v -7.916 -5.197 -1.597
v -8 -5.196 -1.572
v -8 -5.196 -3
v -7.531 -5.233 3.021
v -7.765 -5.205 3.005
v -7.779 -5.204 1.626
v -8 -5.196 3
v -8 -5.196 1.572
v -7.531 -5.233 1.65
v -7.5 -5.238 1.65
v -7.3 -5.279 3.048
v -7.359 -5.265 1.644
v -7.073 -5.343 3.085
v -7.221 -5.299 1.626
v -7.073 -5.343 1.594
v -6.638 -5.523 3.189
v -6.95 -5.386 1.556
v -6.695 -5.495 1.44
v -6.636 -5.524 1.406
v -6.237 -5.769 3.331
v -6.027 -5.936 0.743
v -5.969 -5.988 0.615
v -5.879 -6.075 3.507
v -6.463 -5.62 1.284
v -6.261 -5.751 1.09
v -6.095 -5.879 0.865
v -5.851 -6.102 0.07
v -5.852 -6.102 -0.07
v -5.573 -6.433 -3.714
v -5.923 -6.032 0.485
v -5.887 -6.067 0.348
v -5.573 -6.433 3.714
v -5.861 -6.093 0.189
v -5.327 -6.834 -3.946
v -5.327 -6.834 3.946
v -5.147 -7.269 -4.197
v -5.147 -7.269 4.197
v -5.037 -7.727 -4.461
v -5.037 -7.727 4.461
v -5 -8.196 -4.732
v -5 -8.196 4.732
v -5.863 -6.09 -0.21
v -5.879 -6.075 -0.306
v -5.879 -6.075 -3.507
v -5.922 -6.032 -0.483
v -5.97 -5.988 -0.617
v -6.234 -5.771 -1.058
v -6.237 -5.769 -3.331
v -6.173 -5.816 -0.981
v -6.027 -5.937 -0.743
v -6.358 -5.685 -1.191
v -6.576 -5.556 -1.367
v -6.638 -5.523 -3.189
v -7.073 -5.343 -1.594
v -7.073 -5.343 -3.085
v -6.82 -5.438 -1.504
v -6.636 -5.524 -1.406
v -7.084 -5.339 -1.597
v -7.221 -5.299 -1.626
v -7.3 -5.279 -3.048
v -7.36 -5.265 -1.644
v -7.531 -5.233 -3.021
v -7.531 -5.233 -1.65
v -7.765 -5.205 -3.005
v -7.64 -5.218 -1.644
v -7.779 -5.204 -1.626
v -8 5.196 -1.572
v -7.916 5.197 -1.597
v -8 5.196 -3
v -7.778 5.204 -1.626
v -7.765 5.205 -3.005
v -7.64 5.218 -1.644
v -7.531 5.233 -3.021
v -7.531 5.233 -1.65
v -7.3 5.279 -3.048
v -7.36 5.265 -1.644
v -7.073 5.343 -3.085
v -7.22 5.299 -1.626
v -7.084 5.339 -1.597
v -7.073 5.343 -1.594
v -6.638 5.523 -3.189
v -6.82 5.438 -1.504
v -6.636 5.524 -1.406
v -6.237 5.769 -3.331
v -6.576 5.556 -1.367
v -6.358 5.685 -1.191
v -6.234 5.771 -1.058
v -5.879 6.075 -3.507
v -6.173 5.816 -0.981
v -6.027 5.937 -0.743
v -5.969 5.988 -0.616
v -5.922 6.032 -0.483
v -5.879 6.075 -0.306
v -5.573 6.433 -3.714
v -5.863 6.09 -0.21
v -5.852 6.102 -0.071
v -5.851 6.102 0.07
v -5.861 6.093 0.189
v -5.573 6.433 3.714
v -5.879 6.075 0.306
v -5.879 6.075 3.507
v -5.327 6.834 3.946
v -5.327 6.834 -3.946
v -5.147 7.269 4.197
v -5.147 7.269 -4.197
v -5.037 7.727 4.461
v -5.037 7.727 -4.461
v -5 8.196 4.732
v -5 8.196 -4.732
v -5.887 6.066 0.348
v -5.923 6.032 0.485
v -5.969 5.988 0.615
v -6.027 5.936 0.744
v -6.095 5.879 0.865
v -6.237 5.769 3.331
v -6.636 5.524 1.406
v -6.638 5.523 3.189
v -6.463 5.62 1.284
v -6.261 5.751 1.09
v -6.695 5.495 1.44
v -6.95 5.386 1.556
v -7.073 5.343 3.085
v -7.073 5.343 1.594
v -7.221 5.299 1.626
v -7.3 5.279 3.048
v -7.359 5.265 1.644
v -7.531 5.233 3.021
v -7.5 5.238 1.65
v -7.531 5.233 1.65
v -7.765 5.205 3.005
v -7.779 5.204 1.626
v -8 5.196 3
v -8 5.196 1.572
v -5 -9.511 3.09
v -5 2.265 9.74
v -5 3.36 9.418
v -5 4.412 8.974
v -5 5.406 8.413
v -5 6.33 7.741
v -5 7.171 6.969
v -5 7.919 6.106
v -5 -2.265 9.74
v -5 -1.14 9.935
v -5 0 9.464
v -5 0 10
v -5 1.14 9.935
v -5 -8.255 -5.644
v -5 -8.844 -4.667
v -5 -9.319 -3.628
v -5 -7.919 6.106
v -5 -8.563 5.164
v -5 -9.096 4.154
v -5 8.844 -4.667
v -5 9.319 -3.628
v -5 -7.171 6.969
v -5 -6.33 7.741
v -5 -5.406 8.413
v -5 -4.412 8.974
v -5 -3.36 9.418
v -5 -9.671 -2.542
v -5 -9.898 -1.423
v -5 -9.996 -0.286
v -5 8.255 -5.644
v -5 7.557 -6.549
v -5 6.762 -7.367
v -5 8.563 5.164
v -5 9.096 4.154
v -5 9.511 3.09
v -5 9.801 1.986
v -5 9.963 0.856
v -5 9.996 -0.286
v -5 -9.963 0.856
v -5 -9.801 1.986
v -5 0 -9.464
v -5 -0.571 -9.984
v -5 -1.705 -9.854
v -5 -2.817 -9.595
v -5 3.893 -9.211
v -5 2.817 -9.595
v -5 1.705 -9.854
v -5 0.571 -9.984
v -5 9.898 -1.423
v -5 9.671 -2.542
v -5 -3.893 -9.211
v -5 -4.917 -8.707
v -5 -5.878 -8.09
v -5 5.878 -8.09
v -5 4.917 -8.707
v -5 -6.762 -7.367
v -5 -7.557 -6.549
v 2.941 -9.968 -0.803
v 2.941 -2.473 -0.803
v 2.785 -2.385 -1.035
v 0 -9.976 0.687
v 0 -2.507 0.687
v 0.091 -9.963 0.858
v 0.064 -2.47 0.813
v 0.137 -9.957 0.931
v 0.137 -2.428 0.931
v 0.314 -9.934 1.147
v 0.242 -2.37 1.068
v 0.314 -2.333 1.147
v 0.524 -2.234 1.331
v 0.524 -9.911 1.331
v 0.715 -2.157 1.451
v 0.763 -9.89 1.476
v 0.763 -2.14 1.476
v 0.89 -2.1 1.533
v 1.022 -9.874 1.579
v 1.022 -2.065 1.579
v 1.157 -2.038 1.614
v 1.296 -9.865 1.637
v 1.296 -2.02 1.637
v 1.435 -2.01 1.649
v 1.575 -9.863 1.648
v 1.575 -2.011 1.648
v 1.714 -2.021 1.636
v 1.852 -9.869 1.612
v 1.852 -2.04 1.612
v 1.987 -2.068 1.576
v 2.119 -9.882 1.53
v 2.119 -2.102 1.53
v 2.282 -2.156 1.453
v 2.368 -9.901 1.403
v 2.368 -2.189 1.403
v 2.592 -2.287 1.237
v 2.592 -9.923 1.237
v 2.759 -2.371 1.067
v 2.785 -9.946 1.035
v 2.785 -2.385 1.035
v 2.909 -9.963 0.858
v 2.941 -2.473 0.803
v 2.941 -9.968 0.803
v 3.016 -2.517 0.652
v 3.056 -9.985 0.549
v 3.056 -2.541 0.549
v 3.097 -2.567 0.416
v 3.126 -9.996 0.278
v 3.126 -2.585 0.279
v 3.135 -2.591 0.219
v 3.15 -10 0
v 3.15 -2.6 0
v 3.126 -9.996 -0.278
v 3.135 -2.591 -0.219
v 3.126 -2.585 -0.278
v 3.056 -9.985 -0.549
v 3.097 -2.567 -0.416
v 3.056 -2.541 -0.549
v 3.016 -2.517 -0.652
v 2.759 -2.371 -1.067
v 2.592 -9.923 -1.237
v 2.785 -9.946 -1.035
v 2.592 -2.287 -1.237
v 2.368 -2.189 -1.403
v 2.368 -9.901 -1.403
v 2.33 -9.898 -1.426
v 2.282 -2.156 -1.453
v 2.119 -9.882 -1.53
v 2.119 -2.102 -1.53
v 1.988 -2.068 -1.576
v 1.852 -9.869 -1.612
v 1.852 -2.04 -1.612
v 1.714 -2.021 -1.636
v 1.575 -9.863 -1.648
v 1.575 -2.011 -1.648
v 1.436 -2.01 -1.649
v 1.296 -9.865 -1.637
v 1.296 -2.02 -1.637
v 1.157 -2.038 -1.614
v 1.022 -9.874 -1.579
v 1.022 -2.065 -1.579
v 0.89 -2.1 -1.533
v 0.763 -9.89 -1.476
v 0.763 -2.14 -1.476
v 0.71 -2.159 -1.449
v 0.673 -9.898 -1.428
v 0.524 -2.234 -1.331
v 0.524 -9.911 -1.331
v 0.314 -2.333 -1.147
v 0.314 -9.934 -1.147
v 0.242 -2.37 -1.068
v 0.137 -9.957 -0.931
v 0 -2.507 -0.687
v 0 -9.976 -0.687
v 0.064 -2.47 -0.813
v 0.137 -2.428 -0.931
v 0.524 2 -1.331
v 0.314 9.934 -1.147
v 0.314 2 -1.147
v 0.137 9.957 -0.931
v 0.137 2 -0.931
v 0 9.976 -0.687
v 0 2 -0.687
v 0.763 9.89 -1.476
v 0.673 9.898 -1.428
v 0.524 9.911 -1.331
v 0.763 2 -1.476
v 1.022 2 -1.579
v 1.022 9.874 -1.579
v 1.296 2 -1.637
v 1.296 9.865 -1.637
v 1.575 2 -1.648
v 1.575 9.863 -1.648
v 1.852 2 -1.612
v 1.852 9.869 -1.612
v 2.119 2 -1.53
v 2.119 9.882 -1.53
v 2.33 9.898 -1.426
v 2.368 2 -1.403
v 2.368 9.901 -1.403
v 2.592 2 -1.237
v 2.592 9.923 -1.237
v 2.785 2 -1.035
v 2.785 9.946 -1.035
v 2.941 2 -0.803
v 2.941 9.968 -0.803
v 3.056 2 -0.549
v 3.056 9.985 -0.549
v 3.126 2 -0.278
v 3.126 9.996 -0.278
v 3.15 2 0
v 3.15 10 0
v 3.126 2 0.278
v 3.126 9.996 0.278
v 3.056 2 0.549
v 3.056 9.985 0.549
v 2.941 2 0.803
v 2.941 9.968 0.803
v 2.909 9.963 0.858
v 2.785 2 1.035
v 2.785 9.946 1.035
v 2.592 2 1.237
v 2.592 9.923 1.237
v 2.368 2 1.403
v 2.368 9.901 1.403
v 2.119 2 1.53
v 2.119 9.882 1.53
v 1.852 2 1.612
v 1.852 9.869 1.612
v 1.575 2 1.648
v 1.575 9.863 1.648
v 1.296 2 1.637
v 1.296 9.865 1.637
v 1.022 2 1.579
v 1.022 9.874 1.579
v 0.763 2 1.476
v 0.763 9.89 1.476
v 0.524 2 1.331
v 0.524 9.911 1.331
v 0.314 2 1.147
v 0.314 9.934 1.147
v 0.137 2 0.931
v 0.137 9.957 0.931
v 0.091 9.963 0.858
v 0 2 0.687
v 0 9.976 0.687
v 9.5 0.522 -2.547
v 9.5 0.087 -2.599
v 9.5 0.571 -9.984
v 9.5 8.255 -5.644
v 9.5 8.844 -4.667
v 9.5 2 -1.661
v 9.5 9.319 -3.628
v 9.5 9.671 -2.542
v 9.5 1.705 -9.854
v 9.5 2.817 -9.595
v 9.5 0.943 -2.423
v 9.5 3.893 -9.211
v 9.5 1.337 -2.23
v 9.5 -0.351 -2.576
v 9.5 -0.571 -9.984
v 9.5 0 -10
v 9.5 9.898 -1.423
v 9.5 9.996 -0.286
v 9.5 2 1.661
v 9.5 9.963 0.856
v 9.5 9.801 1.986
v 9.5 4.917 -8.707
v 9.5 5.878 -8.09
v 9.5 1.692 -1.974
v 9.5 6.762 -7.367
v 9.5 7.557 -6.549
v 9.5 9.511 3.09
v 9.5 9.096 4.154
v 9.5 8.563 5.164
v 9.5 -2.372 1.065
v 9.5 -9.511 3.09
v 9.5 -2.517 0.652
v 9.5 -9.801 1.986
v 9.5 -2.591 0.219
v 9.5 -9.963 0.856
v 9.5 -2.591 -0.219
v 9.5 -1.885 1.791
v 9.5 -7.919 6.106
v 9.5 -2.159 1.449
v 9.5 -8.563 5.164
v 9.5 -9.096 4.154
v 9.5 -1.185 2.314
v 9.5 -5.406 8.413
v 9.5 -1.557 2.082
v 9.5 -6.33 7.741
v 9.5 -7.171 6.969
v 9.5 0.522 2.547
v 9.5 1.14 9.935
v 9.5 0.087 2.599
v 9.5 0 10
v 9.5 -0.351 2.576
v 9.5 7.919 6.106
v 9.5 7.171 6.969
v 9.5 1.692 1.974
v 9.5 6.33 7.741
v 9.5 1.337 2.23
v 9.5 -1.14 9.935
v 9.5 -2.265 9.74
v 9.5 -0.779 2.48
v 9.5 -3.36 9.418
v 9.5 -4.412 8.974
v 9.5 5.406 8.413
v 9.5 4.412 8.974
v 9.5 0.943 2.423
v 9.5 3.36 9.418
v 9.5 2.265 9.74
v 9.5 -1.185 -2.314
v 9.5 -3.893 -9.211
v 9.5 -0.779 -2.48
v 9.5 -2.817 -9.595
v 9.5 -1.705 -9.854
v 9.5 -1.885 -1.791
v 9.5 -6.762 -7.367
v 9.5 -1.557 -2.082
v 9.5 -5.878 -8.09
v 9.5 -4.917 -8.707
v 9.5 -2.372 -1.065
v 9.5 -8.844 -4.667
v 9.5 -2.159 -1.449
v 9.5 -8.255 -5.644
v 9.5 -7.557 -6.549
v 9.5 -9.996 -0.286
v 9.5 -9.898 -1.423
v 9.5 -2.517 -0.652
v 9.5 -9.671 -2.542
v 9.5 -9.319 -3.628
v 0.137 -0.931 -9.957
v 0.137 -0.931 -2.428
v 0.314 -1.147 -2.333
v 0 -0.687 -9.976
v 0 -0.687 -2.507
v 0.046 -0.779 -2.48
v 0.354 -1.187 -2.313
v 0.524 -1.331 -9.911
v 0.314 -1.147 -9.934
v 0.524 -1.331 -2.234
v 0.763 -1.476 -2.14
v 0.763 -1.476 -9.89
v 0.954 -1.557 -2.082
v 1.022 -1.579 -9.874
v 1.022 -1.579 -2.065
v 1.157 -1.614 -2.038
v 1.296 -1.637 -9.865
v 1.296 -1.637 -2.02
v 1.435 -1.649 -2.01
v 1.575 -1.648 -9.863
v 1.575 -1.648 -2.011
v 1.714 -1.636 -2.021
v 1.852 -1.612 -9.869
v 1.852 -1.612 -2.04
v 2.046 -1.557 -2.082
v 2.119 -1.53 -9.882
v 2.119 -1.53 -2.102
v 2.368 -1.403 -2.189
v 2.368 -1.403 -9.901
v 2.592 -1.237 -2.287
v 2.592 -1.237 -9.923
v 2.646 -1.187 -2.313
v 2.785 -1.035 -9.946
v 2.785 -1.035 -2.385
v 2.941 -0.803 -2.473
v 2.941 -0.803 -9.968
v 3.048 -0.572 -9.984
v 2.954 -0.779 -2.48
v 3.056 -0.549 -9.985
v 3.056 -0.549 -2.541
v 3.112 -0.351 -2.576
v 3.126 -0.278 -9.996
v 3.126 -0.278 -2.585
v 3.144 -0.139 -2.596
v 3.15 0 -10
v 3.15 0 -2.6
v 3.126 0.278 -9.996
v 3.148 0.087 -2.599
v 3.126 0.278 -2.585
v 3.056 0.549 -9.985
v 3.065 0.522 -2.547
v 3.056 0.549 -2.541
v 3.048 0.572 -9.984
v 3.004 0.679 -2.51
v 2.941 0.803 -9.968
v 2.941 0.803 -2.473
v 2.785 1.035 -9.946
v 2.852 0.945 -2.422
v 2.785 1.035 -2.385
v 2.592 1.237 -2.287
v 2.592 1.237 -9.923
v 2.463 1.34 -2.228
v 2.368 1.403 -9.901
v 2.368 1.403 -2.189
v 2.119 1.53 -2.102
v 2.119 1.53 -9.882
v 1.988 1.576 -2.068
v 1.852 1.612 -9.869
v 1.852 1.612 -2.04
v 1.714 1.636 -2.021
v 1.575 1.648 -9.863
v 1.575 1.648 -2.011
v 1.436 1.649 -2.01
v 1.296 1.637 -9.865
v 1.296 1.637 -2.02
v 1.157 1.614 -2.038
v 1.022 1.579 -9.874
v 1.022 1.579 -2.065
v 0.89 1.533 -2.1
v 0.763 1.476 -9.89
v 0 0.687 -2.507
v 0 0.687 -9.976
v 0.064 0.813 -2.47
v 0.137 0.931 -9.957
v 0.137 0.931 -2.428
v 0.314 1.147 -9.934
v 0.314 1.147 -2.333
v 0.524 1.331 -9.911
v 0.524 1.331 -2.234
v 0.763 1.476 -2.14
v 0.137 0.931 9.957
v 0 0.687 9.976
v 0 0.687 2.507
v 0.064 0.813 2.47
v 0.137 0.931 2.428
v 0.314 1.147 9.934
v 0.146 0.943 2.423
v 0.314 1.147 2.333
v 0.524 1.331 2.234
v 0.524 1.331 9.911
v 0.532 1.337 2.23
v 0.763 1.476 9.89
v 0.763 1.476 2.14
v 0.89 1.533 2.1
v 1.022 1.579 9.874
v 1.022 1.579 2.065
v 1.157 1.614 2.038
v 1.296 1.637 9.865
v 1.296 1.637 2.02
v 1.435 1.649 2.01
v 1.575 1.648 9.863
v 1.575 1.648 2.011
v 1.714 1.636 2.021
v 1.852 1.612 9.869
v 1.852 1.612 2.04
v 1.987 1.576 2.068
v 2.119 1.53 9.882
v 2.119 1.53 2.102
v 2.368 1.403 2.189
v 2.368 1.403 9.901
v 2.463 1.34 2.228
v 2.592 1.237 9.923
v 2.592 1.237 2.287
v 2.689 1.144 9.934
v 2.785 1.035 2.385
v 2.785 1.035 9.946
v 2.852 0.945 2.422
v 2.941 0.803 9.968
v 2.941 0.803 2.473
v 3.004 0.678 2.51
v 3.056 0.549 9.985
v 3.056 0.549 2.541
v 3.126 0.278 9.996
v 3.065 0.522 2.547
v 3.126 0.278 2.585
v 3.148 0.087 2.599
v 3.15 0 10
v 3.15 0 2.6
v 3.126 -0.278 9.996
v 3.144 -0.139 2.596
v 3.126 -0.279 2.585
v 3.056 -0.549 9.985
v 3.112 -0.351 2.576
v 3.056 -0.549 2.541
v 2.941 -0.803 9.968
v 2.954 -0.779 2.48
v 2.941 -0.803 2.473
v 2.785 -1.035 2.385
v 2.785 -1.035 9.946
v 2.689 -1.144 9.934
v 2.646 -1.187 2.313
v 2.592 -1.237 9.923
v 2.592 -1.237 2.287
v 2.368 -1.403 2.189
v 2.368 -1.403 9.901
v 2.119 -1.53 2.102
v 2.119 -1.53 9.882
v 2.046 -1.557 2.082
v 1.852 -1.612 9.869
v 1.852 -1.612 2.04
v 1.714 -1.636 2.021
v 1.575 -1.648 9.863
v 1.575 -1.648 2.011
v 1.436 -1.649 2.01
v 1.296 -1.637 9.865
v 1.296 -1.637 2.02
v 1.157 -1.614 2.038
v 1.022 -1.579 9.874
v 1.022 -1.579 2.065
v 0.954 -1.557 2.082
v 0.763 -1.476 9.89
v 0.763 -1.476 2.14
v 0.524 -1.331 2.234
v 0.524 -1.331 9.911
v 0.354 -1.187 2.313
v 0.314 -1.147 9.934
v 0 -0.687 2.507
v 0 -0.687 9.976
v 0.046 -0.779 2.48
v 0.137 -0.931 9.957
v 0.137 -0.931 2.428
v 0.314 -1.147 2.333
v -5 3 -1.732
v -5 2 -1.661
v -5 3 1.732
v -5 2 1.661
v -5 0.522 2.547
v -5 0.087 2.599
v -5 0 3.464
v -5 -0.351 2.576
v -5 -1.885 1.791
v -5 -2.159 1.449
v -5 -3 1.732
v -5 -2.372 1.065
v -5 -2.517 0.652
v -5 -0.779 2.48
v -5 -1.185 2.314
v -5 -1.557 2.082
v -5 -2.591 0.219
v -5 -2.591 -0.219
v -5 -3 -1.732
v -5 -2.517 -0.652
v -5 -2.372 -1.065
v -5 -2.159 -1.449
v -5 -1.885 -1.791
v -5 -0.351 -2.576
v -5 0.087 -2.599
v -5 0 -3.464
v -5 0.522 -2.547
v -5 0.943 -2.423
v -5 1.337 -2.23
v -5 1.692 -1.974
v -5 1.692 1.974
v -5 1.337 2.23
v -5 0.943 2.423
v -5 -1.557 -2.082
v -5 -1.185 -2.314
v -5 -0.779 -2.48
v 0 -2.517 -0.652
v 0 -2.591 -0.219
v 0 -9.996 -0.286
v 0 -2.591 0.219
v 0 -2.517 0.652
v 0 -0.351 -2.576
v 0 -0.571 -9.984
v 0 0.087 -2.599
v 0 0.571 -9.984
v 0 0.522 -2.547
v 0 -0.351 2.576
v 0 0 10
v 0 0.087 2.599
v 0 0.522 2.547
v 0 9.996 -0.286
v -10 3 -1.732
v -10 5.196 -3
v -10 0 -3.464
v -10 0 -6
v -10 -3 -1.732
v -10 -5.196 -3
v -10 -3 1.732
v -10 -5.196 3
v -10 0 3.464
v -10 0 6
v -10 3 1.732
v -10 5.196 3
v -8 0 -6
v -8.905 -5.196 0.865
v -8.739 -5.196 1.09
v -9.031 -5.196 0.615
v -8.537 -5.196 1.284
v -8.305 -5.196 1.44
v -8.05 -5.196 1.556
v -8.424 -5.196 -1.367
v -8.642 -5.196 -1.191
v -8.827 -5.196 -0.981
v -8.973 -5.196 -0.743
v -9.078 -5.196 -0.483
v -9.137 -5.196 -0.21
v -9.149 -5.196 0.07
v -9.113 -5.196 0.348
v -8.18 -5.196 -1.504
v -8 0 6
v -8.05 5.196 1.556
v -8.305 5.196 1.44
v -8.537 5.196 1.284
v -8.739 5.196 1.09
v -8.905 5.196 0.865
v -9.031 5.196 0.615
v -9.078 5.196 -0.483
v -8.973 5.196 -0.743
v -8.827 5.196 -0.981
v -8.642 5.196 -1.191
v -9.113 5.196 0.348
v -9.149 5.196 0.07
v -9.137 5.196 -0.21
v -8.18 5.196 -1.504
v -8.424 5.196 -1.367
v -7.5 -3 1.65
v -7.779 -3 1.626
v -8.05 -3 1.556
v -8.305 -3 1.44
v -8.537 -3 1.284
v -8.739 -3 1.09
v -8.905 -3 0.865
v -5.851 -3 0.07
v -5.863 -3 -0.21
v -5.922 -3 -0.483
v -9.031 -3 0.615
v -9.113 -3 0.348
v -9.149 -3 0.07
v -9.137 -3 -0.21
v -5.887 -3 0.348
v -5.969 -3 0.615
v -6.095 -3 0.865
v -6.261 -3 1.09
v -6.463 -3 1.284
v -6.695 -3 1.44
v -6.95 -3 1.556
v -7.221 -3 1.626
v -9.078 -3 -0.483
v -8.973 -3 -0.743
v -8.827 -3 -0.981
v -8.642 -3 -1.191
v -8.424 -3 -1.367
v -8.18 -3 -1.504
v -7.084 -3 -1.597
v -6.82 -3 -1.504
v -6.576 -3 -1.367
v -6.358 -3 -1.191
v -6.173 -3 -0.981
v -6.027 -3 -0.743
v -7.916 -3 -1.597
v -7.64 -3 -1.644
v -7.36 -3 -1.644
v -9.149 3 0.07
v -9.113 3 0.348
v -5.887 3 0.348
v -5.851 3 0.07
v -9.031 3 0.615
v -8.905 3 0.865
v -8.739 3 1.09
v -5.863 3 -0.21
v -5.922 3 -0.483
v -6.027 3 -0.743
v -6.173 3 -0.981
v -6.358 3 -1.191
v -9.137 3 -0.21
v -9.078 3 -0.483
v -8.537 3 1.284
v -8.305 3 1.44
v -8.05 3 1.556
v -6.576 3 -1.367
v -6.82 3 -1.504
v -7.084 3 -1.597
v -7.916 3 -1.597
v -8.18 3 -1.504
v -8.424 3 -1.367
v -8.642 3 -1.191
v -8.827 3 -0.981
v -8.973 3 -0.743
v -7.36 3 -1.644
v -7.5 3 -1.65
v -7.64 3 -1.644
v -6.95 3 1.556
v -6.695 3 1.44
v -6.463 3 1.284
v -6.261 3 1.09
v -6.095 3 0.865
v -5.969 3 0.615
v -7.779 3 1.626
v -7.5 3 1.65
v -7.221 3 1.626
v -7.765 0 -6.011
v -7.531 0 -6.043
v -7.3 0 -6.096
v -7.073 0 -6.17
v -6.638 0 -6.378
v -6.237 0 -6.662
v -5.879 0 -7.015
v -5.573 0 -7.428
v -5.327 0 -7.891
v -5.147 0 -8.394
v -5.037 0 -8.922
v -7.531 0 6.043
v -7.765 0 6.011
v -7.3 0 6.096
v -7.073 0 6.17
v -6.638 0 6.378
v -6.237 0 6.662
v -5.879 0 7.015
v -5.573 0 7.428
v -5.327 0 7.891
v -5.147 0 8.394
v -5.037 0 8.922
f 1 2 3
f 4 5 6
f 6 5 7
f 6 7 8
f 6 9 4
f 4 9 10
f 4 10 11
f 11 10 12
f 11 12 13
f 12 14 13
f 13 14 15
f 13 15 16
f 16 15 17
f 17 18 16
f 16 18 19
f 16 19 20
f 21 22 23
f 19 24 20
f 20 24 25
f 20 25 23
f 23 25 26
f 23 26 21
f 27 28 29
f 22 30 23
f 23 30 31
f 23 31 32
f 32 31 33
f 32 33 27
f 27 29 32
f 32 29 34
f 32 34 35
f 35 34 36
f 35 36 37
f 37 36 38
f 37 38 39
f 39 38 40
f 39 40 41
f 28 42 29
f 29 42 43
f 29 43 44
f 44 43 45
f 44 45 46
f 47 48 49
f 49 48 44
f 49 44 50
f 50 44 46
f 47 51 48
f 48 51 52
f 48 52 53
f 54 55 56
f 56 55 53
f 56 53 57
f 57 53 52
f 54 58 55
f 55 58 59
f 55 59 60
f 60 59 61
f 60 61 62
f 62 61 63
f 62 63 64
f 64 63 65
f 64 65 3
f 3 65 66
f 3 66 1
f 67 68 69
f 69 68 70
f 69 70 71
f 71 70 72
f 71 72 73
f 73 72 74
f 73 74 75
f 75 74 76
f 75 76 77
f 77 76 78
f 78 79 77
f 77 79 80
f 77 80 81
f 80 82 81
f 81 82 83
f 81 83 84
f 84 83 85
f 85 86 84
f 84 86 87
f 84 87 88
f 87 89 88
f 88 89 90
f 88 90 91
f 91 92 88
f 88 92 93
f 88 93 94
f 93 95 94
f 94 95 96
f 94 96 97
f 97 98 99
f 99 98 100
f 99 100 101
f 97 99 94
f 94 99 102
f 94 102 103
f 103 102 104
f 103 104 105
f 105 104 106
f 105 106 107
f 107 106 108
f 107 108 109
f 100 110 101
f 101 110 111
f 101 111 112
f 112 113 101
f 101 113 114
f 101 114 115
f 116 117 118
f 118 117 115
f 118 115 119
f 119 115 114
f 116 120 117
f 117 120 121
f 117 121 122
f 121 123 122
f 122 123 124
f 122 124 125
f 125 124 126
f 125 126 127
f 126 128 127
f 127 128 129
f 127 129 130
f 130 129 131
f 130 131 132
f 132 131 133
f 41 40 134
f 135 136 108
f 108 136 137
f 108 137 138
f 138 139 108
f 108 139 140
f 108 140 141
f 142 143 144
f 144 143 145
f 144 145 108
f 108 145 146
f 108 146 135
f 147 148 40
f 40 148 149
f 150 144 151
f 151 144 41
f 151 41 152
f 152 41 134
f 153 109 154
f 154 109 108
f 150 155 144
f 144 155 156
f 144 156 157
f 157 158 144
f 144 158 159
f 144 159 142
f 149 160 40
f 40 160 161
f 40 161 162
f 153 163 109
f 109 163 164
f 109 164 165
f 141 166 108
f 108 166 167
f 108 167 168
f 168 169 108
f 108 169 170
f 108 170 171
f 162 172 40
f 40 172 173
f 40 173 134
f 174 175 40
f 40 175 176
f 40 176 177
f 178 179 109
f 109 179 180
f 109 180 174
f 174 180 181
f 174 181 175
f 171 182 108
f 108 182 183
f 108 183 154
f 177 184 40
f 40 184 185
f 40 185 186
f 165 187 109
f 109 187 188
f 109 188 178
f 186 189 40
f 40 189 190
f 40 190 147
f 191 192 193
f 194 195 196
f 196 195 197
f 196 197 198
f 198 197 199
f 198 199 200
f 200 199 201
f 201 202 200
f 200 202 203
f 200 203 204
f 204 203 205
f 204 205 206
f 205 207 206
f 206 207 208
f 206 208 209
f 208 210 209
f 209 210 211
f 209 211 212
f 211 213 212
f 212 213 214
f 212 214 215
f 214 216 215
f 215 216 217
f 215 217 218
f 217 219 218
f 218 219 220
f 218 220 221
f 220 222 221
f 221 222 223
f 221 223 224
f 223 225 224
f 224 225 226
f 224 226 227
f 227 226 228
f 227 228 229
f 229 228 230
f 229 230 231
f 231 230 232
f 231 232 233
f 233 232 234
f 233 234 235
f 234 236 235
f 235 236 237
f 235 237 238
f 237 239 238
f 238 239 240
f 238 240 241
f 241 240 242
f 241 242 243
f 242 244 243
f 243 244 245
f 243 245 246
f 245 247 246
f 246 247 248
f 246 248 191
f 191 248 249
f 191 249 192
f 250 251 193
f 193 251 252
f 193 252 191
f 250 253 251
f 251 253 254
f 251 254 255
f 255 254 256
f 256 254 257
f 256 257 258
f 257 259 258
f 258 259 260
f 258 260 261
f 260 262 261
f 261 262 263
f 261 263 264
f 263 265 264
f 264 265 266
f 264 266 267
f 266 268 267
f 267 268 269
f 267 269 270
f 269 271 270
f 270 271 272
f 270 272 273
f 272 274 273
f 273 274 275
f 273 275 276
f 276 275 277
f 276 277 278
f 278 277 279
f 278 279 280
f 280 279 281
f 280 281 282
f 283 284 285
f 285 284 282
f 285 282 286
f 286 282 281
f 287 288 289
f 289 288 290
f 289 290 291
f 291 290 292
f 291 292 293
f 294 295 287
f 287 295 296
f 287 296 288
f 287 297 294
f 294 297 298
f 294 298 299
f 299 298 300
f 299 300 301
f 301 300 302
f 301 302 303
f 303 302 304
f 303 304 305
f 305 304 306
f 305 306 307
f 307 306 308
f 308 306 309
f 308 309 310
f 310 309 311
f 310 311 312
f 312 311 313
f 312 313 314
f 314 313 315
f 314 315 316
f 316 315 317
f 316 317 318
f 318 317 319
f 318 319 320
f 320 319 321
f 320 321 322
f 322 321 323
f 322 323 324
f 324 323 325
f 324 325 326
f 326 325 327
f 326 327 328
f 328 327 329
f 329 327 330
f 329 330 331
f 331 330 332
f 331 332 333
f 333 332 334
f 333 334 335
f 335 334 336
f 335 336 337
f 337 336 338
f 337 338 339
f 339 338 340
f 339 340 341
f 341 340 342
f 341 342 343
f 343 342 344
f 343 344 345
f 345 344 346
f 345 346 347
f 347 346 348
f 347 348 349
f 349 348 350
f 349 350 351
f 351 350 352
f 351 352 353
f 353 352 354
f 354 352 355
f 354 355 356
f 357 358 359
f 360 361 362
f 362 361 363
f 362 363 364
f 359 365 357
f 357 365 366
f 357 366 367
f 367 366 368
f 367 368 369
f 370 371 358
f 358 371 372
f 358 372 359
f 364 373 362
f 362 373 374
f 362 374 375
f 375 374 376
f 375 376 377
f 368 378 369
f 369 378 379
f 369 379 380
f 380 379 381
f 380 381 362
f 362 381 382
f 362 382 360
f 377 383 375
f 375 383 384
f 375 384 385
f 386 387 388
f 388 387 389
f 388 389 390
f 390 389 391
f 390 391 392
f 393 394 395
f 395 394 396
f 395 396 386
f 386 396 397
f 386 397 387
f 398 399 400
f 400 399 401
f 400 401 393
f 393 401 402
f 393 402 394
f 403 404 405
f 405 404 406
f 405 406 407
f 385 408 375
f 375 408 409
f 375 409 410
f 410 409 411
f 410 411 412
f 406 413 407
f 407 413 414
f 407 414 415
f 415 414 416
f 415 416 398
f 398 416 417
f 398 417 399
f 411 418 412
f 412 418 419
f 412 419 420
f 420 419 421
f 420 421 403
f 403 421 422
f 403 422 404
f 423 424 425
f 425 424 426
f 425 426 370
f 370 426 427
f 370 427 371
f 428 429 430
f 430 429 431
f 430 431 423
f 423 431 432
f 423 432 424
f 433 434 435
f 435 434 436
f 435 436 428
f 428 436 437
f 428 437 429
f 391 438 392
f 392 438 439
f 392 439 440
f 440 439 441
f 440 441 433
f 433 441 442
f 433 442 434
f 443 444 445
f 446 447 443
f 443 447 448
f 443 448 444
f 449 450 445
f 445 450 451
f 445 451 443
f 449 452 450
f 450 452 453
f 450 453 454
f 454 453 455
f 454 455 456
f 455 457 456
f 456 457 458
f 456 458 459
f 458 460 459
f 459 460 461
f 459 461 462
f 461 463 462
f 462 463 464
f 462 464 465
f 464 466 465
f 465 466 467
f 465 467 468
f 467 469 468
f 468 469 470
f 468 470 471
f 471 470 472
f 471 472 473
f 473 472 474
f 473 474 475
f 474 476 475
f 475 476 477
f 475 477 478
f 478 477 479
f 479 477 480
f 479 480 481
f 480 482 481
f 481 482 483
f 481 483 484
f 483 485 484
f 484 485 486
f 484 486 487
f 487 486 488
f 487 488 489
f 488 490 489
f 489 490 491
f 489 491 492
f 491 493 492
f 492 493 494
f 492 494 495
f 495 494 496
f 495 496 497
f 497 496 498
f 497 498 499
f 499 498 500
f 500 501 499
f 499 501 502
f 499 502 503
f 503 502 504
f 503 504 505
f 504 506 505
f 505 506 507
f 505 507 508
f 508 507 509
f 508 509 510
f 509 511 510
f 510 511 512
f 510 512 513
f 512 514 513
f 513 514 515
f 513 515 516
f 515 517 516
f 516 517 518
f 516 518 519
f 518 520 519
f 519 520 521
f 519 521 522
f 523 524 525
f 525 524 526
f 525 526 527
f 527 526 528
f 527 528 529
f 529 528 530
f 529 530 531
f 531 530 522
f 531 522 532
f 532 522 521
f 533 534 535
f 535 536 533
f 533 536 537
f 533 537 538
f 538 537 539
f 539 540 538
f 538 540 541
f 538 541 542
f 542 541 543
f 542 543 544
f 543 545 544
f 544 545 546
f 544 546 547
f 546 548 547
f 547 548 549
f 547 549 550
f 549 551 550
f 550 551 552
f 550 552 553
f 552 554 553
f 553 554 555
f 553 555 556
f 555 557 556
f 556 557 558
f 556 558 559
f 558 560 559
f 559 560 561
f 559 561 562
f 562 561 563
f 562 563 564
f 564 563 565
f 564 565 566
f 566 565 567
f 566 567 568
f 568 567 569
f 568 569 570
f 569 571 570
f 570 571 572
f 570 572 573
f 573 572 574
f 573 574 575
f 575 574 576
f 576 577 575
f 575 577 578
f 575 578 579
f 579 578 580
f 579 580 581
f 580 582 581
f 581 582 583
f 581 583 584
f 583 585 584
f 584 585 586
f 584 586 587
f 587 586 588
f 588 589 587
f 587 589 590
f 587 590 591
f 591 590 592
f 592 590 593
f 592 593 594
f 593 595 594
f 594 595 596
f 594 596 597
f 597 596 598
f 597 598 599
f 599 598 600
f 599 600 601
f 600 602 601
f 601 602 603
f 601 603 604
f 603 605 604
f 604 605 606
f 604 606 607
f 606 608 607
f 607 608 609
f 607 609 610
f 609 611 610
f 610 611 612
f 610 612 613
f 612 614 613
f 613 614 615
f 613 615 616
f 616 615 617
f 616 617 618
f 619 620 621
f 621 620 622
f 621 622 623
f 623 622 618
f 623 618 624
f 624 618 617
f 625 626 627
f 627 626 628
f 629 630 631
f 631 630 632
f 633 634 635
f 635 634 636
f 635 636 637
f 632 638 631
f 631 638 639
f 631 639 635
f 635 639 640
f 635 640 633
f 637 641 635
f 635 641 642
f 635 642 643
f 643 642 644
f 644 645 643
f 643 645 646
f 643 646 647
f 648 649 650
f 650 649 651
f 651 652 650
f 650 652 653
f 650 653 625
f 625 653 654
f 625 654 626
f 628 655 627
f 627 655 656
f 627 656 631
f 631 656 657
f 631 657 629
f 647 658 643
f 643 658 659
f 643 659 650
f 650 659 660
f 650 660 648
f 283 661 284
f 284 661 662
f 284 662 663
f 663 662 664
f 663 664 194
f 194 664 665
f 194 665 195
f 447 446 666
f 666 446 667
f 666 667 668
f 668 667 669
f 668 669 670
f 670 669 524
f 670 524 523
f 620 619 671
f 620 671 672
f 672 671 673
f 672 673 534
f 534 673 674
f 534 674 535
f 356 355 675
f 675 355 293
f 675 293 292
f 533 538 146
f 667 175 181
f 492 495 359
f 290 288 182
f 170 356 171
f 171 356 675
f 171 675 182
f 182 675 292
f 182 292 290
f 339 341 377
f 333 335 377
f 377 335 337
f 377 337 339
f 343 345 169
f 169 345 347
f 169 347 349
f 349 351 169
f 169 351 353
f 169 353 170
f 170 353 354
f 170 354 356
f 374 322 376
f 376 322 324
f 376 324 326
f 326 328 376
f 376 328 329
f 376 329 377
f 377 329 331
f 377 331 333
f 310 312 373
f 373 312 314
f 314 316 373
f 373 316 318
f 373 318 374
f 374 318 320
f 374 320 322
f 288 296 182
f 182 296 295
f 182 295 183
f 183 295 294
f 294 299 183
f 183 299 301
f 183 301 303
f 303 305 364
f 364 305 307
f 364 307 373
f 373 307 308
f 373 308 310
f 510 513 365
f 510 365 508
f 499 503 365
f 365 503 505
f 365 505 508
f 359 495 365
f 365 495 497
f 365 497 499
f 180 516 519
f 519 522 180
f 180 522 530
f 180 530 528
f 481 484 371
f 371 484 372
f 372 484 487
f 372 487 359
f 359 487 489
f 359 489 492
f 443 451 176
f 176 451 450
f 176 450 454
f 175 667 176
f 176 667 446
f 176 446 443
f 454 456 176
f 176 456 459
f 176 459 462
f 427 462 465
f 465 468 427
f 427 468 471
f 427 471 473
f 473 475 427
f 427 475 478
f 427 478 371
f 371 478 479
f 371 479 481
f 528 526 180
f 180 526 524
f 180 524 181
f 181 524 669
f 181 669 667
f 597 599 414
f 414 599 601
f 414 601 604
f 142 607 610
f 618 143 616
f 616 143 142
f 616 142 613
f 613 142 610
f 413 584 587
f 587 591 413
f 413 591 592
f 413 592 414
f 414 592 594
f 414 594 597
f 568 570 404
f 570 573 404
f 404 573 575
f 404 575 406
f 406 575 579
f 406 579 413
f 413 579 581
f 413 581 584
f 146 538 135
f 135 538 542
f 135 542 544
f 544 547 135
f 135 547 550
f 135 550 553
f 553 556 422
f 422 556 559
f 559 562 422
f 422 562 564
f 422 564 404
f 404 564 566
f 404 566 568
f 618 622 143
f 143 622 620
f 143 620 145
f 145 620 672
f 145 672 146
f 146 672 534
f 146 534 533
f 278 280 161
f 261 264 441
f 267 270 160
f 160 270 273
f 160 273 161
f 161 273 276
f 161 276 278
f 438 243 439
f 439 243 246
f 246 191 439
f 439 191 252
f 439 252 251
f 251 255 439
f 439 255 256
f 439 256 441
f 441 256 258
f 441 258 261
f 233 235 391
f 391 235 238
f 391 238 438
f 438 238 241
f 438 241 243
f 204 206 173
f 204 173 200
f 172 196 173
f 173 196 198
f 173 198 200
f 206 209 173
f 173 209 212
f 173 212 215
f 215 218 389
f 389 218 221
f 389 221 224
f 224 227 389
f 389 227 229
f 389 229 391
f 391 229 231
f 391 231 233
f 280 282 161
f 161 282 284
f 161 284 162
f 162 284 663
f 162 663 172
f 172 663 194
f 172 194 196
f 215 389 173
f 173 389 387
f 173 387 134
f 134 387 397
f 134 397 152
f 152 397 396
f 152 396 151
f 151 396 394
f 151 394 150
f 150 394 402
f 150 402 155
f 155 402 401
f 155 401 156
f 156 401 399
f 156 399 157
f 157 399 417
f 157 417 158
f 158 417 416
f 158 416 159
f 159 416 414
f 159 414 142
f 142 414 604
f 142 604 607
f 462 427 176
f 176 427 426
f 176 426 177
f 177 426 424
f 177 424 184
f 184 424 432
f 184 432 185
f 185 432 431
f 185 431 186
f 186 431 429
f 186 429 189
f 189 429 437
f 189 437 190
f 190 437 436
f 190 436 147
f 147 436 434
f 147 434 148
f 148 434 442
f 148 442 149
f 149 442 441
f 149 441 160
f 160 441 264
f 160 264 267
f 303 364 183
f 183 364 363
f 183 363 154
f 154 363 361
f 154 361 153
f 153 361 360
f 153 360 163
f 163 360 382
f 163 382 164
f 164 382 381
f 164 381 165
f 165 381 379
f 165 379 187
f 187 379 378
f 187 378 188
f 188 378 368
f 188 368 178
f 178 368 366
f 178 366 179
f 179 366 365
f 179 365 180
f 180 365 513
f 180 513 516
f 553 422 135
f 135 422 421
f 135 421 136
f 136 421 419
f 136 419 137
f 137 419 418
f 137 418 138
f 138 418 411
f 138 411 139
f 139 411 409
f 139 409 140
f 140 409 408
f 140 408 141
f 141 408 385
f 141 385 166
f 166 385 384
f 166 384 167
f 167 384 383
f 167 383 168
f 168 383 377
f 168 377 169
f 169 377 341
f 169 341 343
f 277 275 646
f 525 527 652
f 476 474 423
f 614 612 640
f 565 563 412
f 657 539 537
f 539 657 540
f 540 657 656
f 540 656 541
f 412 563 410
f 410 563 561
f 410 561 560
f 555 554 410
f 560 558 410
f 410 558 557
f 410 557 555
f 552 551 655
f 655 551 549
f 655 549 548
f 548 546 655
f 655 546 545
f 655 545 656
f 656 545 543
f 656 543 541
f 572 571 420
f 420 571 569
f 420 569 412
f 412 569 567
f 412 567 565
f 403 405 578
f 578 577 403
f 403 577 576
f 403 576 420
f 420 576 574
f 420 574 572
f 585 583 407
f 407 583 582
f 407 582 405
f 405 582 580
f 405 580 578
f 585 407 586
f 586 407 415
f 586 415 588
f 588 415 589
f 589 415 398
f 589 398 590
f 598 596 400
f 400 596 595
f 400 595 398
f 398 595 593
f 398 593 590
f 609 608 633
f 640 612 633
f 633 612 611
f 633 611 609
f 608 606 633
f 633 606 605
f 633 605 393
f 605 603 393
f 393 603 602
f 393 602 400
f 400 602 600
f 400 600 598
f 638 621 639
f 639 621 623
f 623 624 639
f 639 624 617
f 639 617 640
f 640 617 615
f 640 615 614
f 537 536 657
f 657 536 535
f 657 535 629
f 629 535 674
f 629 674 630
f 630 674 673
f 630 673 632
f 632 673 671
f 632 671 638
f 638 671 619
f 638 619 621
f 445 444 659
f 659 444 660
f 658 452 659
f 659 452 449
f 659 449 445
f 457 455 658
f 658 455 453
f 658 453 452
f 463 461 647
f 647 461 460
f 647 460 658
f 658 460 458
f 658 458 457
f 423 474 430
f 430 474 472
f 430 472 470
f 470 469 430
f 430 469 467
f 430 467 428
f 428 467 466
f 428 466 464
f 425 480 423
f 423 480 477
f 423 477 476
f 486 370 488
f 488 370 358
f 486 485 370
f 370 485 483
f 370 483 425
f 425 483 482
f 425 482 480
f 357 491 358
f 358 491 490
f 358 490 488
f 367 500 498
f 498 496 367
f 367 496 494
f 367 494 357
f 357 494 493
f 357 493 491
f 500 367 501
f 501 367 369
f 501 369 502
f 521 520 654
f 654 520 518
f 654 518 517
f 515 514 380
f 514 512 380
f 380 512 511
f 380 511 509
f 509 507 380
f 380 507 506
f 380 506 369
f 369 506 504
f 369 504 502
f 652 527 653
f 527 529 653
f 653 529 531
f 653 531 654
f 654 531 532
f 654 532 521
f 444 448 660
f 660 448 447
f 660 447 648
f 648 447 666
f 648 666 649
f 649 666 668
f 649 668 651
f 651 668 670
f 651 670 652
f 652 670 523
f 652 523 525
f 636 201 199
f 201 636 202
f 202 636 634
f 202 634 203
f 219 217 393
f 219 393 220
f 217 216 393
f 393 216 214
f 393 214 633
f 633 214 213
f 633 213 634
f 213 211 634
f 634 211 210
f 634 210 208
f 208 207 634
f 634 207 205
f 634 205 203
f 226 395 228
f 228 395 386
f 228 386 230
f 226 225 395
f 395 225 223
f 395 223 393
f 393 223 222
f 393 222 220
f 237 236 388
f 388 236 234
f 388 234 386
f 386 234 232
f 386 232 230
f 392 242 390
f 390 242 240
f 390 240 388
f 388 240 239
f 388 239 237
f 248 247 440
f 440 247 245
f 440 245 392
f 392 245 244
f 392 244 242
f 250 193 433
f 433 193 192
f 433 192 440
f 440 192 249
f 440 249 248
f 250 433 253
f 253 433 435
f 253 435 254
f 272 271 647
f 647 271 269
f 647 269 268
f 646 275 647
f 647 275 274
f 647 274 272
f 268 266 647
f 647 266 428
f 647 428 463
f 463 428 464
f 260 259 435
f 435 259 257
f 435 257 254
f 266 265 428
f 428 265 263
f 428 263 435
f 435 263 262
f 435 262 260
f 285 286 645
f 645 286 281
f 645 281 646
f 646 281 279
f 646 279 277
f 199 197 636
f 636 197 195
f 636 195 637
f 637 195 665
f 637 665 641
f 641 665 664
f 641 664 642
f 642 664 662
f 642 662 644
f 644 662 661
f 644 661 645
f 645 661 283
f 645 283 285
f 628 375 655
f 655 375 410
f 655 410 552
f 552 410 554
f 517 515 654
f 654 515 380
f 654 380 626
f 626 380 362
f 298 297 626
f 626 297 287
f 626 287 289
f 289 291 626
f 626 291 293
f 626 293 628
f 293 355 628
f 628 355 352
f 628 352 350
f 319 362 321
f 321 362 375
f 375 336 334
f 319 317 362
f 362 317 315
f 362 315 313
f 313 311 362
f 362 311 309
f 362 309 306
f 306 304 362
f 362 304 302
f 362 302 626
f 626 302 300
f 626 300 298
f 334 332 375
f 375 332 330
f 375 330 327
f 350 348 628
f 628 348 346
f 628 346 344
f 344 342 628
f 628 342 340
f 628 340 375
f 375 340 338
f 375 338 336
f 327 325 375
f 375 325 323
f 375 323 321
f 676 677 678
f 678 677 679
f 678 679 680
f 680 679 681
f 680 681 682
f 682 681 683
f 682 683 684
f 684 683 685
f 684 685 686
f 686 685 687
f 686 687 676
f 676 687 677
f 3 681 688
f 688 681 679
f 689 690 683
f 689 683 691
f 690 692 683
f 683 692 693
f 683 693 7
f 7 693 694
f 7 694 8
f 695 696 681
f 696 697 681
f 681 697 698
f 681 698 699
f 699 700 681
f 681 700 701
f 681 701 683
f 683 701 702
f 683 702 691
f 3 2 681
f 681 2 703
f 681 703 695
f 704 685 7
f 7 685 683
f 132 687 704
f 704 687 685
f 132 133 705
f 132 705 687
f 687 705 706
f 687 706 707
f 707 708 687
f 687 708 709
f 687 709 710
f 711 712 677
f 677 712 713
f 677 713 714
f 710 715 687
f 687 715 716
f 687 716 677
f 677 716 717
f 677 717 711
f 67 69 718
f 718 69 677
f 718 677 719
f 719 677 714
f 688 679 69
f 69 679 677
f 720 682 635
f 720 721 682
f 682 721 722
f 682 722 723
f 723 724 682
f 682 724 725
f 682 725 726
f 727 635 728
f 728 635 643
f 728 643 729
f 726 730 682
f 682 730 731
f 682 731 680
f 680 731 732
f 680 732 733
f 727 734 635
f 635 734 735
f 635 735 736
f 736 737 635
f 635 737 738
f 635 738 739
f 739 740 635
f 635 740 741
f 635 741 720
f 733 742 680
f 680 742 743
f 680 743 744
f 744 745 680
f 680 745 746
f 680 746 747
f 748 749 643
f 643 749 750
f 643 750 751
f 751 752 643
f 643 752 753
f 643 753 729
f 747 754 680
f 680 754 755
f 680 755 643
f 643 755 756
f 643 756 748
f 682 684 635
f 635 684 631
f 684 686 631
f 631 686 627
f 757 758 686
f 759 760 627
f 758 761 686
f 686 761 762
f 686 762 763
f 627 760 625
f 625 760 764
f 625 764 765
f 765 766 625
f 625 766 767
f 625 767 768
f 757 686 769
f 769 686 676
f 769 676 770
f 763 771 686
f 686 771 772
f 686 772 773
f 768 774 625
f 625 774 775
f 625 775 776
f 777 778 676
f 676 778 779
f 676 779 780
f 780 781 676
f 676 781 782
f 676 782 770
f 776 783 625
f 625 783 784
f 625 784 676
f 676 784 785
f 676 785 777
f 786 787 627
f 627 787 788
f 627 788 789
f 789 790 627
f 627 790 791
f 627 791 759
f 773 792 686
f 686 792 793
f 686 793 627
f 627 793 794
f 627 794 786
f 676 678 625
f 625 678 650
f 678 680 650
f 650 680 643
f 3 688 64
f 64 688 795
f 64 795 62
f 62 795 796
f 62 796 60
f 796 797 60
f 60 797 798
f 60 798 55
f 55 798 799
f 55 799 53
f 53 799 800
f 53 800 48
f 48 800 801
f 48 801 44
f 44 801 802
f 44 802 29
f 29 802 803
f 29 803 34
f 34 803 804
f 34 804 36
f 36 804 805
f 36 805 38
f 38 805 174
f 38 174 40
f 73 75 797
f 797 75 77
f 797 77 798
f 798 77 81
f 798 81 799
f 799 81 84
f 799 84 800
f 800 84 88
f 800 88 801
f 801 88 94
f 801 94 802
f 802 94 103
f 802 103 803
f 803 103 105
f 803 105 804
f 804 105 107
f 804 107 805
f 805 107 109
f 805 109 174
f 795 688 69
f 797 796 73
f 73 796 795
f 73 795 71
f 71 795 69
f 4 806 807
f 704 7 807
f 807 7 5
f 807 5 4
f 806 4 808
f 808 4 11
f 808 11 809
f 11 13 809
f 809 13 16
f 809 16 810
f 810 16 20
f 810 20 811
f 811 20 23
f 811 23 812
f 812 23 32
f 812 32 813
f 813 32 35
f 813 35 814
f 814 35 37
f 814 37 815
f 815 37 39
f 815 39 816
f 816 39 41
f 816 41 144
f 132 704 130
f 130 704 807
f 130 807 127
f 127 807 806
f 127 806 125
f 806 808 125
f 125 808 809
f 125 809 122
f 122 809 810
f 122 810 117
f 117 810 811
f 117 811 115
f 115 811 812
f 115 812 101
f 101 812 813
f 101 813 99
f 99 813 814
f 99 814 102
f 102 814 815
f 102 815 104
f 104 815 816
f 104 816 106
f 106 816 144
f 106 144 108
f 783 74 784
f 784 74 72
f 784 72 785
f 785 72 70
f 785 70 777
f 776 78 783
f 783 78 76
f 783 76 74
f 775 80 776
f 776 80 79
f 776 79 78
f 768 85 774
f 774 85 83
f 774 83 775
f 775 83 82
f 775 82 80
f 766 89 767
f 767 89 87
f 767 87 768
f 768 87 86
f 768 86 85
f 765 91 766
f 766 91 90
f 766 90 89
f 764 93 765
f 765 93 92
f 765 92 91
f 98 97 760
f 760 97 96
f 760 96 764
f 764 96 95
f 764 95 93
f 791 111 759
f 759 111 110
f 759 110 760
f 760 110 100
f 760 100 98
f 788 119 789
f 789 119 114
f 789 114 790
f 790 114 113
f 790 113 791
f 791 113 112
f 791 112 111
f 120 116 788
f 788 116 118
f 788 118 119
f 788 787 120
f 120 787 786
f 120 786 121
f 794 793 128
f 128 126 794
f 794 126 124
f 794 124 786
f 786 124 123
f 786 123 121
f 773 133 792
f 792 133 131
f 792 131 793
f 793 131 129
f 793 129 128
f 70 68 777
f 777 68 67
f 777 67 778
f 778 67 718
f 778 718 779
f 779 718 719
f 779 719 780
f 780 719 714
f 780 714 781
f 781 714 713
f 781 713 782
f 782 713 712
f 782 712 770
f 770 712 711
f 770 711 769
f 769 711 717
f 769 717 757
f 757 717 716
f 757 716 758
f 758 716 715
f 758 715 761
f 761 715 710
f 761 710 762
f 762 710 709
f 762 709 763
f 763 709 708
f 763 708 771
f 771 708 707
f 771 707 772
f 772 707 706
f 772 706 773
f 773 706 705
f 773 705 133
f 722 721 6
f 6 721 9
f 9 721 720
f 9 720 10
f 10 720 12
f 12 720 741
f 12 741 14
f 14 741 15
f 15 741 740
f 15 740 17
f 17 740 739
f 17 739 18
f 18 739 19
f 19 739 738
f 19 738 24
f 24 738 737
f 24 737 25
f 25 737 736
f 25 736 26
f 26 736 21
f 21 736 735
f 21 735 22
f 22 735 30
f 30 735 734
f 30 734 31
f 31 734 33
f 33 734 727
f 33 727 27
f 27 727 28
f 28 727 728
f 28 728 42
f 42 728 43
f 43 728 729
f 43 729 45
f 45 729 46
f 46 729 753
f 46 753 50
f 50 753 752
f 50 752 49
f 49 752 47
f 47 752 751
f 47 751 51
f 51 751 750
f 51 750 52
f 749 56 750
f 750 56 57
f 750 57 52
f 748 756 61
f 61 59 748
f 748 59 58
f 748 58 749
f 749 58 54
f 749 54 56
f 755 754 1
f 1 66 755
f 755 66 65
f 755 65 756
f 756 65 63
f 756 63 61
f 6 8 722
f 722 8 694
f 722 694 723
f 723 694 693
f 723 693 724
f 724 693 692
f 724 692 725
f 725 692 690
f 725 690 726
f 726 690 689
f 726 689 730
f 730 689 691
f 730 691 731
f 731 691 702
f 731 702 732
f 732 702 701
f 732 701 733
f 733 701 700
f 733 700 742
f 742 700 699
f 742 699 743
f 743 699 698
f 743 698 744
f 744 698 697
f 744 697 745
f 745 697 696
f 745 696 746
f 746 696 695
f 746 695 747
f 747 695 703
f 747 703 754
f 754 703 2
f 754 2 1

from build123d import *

# Parameters (mm, degrees)
SKETCH1_R               = 10
BOSS_EXTRUDE1_DEPTH     = 9.5
CUT_EXTRUDE3_DEPTH      = 25
CUT_EXTRUDE3_DEPTH_BACK = 25
SKETCH3_R               = 1.65
CUT_EXTRUDE4_DEPTH      = 25
CUT_EXTRUDE4_DEPTH_BACK = 25
SKETCH4_R               = 1.65
BOSS_EXTRUDE3_START     = 5
SKETCH6_R               = 10
BOSS_EXTRUDE3_DEPTH     = 5
CUT_EXTRUDE1_DEPTH      = 25
BOSS_EXTRUDE4_DEPTH     = 5
FILLET1_R               = 3
CUT_EXTRUDE5_DEPTH      = 100
CUT_EXTRUDE5_DEPTH_BACK = 100
SKETCH8_R               = 1.65


with BuildPart() as part:
    # Sketch1 → Boss-Extrude1 (new body)
    with BuildSketch(Plane(origin=(0, 0, 0), x_dir=(0, 0, -1), z_dir=(1, 0, 0))):
        Circle(SKETCH1_R)
    extrude(amount=BOSS_EXTRUDE1_DEPTH)

    # Sketch3 → Cut-Extrude3 (cut, two sides: drawn at the far end of the back side and taken through both)
    with BuildSketch(Plane(origin=(0, 0, 0), x_dir=(1, 0, 0), z_dir=(0, 1, 0)).offset(-CUT_EXTRUDE3_DEPTH_BACK)):
        with Locations((1.5, 0)):
            Circle(SKETCH3_R)
    extrude(amount=CUT_EXTRUDE3_DEPTH + CUT_EXTRUDE3_DEPTH_BACK, mode=Mode.SUBTRACT)

    # Sketch4 → Cut-Extrude4 (cut, two sides: drawn at the far end of the back side and taken through both)
    with BuildSketch(Plane.XY.offset(-CUT_EXTRUDE4_DEPTH_BACK)):
        with Locations((1.5, 0)):
            Circle(SKETCH4_R)
    extrude(amount=CUT_EXTRUDE4_DEPTH + CUT_EXTRUDE4_DEPTH_BACK, mode=Mode.SUBTRACT)

    # Sketch6 → Boss-Extrude3 (add)
    with BuildSketch(Plane.ZY.offset(BOSS_EXTRUDE3_START)):
        Circle(SKETCH6_R)
    extrude(amount=-BOSS_EXTRUDE3_DEPTH)

    # Sketch2 → Cut-Extrude1 (cut)
    with BuildSketch(Plane.ZY.offset(-9.5)):
        with BuildLine():
            ThreePointArc((2.6, 0), (2.353661446, 1.104661847), (1.661324773, 2))
            Line((1.661324773, 2), (-1.661324773, 2))
            ThreePointArc((-1.661324773, 2), (-1.104661847, -2.353661446), (2.6, 0))
        make_face()
    extrude(amount=CUT_EXTRUDE1_DEPTH, mode=Mode.SUBTRACT)

    # Sketch7 → Boss-Extrude4 (add)
    with BuildSketch(Plane.ZY.offset(5)):
        Polygon((-3, -5.196152423), (3, -5.196152423), (6, 0), (3, 5.196152423), (-3, 5.196152423), (-6, 0), align=None)
        Polygon((1.732050808, -3), (3.464101615, 0), (1.732050808, 3), (-1.732050808, 3), (-3.464101615, 0), (-1.732050808, -3), align=None, mode=Mode.SUBTRACT)
    extrude(amount=BOSS_EXTRUDE4_DEPTH)

    # Fillet1
    fillet1_edges = [part.edges().sort_by_distance(p)[0] for p in [
        (-5, -2.598076211, -4.5),
        (-5, -5.196152423, 0),
        (-5, -2.598076211, 4.5),
        (-5, 2.598076211, 4.5),
        (-5, 5.196152423, 0),
        (-5, 2.598076211, -4.5),
    ]]
    fillet(fillet1_edges, radius=FILLET1_R)

    # Sketch8 → Cut-Extrude5 (cut, two sides: drawn at the far end of the back side and taken through both)
    with BuildSketch(Plane(origin=(0, -5.196152423, 0), x_dir=(-1, 0, 0), z_dir=(0, -1, 0)).offset(-CUT_EXTRUDE5_DEPTH_BACK)):
        with Locations(Location((7.5, 0, 0), (0, 0, 287.639701394))):
            Circle(SKETCH8_R)
    extrude(amount=CUT_EXTRUDE5_DEPTH + CUT_EXTRUDE5_DEPTH_BACK, mode=Mode.SUBTRACT)


solid = part.part
